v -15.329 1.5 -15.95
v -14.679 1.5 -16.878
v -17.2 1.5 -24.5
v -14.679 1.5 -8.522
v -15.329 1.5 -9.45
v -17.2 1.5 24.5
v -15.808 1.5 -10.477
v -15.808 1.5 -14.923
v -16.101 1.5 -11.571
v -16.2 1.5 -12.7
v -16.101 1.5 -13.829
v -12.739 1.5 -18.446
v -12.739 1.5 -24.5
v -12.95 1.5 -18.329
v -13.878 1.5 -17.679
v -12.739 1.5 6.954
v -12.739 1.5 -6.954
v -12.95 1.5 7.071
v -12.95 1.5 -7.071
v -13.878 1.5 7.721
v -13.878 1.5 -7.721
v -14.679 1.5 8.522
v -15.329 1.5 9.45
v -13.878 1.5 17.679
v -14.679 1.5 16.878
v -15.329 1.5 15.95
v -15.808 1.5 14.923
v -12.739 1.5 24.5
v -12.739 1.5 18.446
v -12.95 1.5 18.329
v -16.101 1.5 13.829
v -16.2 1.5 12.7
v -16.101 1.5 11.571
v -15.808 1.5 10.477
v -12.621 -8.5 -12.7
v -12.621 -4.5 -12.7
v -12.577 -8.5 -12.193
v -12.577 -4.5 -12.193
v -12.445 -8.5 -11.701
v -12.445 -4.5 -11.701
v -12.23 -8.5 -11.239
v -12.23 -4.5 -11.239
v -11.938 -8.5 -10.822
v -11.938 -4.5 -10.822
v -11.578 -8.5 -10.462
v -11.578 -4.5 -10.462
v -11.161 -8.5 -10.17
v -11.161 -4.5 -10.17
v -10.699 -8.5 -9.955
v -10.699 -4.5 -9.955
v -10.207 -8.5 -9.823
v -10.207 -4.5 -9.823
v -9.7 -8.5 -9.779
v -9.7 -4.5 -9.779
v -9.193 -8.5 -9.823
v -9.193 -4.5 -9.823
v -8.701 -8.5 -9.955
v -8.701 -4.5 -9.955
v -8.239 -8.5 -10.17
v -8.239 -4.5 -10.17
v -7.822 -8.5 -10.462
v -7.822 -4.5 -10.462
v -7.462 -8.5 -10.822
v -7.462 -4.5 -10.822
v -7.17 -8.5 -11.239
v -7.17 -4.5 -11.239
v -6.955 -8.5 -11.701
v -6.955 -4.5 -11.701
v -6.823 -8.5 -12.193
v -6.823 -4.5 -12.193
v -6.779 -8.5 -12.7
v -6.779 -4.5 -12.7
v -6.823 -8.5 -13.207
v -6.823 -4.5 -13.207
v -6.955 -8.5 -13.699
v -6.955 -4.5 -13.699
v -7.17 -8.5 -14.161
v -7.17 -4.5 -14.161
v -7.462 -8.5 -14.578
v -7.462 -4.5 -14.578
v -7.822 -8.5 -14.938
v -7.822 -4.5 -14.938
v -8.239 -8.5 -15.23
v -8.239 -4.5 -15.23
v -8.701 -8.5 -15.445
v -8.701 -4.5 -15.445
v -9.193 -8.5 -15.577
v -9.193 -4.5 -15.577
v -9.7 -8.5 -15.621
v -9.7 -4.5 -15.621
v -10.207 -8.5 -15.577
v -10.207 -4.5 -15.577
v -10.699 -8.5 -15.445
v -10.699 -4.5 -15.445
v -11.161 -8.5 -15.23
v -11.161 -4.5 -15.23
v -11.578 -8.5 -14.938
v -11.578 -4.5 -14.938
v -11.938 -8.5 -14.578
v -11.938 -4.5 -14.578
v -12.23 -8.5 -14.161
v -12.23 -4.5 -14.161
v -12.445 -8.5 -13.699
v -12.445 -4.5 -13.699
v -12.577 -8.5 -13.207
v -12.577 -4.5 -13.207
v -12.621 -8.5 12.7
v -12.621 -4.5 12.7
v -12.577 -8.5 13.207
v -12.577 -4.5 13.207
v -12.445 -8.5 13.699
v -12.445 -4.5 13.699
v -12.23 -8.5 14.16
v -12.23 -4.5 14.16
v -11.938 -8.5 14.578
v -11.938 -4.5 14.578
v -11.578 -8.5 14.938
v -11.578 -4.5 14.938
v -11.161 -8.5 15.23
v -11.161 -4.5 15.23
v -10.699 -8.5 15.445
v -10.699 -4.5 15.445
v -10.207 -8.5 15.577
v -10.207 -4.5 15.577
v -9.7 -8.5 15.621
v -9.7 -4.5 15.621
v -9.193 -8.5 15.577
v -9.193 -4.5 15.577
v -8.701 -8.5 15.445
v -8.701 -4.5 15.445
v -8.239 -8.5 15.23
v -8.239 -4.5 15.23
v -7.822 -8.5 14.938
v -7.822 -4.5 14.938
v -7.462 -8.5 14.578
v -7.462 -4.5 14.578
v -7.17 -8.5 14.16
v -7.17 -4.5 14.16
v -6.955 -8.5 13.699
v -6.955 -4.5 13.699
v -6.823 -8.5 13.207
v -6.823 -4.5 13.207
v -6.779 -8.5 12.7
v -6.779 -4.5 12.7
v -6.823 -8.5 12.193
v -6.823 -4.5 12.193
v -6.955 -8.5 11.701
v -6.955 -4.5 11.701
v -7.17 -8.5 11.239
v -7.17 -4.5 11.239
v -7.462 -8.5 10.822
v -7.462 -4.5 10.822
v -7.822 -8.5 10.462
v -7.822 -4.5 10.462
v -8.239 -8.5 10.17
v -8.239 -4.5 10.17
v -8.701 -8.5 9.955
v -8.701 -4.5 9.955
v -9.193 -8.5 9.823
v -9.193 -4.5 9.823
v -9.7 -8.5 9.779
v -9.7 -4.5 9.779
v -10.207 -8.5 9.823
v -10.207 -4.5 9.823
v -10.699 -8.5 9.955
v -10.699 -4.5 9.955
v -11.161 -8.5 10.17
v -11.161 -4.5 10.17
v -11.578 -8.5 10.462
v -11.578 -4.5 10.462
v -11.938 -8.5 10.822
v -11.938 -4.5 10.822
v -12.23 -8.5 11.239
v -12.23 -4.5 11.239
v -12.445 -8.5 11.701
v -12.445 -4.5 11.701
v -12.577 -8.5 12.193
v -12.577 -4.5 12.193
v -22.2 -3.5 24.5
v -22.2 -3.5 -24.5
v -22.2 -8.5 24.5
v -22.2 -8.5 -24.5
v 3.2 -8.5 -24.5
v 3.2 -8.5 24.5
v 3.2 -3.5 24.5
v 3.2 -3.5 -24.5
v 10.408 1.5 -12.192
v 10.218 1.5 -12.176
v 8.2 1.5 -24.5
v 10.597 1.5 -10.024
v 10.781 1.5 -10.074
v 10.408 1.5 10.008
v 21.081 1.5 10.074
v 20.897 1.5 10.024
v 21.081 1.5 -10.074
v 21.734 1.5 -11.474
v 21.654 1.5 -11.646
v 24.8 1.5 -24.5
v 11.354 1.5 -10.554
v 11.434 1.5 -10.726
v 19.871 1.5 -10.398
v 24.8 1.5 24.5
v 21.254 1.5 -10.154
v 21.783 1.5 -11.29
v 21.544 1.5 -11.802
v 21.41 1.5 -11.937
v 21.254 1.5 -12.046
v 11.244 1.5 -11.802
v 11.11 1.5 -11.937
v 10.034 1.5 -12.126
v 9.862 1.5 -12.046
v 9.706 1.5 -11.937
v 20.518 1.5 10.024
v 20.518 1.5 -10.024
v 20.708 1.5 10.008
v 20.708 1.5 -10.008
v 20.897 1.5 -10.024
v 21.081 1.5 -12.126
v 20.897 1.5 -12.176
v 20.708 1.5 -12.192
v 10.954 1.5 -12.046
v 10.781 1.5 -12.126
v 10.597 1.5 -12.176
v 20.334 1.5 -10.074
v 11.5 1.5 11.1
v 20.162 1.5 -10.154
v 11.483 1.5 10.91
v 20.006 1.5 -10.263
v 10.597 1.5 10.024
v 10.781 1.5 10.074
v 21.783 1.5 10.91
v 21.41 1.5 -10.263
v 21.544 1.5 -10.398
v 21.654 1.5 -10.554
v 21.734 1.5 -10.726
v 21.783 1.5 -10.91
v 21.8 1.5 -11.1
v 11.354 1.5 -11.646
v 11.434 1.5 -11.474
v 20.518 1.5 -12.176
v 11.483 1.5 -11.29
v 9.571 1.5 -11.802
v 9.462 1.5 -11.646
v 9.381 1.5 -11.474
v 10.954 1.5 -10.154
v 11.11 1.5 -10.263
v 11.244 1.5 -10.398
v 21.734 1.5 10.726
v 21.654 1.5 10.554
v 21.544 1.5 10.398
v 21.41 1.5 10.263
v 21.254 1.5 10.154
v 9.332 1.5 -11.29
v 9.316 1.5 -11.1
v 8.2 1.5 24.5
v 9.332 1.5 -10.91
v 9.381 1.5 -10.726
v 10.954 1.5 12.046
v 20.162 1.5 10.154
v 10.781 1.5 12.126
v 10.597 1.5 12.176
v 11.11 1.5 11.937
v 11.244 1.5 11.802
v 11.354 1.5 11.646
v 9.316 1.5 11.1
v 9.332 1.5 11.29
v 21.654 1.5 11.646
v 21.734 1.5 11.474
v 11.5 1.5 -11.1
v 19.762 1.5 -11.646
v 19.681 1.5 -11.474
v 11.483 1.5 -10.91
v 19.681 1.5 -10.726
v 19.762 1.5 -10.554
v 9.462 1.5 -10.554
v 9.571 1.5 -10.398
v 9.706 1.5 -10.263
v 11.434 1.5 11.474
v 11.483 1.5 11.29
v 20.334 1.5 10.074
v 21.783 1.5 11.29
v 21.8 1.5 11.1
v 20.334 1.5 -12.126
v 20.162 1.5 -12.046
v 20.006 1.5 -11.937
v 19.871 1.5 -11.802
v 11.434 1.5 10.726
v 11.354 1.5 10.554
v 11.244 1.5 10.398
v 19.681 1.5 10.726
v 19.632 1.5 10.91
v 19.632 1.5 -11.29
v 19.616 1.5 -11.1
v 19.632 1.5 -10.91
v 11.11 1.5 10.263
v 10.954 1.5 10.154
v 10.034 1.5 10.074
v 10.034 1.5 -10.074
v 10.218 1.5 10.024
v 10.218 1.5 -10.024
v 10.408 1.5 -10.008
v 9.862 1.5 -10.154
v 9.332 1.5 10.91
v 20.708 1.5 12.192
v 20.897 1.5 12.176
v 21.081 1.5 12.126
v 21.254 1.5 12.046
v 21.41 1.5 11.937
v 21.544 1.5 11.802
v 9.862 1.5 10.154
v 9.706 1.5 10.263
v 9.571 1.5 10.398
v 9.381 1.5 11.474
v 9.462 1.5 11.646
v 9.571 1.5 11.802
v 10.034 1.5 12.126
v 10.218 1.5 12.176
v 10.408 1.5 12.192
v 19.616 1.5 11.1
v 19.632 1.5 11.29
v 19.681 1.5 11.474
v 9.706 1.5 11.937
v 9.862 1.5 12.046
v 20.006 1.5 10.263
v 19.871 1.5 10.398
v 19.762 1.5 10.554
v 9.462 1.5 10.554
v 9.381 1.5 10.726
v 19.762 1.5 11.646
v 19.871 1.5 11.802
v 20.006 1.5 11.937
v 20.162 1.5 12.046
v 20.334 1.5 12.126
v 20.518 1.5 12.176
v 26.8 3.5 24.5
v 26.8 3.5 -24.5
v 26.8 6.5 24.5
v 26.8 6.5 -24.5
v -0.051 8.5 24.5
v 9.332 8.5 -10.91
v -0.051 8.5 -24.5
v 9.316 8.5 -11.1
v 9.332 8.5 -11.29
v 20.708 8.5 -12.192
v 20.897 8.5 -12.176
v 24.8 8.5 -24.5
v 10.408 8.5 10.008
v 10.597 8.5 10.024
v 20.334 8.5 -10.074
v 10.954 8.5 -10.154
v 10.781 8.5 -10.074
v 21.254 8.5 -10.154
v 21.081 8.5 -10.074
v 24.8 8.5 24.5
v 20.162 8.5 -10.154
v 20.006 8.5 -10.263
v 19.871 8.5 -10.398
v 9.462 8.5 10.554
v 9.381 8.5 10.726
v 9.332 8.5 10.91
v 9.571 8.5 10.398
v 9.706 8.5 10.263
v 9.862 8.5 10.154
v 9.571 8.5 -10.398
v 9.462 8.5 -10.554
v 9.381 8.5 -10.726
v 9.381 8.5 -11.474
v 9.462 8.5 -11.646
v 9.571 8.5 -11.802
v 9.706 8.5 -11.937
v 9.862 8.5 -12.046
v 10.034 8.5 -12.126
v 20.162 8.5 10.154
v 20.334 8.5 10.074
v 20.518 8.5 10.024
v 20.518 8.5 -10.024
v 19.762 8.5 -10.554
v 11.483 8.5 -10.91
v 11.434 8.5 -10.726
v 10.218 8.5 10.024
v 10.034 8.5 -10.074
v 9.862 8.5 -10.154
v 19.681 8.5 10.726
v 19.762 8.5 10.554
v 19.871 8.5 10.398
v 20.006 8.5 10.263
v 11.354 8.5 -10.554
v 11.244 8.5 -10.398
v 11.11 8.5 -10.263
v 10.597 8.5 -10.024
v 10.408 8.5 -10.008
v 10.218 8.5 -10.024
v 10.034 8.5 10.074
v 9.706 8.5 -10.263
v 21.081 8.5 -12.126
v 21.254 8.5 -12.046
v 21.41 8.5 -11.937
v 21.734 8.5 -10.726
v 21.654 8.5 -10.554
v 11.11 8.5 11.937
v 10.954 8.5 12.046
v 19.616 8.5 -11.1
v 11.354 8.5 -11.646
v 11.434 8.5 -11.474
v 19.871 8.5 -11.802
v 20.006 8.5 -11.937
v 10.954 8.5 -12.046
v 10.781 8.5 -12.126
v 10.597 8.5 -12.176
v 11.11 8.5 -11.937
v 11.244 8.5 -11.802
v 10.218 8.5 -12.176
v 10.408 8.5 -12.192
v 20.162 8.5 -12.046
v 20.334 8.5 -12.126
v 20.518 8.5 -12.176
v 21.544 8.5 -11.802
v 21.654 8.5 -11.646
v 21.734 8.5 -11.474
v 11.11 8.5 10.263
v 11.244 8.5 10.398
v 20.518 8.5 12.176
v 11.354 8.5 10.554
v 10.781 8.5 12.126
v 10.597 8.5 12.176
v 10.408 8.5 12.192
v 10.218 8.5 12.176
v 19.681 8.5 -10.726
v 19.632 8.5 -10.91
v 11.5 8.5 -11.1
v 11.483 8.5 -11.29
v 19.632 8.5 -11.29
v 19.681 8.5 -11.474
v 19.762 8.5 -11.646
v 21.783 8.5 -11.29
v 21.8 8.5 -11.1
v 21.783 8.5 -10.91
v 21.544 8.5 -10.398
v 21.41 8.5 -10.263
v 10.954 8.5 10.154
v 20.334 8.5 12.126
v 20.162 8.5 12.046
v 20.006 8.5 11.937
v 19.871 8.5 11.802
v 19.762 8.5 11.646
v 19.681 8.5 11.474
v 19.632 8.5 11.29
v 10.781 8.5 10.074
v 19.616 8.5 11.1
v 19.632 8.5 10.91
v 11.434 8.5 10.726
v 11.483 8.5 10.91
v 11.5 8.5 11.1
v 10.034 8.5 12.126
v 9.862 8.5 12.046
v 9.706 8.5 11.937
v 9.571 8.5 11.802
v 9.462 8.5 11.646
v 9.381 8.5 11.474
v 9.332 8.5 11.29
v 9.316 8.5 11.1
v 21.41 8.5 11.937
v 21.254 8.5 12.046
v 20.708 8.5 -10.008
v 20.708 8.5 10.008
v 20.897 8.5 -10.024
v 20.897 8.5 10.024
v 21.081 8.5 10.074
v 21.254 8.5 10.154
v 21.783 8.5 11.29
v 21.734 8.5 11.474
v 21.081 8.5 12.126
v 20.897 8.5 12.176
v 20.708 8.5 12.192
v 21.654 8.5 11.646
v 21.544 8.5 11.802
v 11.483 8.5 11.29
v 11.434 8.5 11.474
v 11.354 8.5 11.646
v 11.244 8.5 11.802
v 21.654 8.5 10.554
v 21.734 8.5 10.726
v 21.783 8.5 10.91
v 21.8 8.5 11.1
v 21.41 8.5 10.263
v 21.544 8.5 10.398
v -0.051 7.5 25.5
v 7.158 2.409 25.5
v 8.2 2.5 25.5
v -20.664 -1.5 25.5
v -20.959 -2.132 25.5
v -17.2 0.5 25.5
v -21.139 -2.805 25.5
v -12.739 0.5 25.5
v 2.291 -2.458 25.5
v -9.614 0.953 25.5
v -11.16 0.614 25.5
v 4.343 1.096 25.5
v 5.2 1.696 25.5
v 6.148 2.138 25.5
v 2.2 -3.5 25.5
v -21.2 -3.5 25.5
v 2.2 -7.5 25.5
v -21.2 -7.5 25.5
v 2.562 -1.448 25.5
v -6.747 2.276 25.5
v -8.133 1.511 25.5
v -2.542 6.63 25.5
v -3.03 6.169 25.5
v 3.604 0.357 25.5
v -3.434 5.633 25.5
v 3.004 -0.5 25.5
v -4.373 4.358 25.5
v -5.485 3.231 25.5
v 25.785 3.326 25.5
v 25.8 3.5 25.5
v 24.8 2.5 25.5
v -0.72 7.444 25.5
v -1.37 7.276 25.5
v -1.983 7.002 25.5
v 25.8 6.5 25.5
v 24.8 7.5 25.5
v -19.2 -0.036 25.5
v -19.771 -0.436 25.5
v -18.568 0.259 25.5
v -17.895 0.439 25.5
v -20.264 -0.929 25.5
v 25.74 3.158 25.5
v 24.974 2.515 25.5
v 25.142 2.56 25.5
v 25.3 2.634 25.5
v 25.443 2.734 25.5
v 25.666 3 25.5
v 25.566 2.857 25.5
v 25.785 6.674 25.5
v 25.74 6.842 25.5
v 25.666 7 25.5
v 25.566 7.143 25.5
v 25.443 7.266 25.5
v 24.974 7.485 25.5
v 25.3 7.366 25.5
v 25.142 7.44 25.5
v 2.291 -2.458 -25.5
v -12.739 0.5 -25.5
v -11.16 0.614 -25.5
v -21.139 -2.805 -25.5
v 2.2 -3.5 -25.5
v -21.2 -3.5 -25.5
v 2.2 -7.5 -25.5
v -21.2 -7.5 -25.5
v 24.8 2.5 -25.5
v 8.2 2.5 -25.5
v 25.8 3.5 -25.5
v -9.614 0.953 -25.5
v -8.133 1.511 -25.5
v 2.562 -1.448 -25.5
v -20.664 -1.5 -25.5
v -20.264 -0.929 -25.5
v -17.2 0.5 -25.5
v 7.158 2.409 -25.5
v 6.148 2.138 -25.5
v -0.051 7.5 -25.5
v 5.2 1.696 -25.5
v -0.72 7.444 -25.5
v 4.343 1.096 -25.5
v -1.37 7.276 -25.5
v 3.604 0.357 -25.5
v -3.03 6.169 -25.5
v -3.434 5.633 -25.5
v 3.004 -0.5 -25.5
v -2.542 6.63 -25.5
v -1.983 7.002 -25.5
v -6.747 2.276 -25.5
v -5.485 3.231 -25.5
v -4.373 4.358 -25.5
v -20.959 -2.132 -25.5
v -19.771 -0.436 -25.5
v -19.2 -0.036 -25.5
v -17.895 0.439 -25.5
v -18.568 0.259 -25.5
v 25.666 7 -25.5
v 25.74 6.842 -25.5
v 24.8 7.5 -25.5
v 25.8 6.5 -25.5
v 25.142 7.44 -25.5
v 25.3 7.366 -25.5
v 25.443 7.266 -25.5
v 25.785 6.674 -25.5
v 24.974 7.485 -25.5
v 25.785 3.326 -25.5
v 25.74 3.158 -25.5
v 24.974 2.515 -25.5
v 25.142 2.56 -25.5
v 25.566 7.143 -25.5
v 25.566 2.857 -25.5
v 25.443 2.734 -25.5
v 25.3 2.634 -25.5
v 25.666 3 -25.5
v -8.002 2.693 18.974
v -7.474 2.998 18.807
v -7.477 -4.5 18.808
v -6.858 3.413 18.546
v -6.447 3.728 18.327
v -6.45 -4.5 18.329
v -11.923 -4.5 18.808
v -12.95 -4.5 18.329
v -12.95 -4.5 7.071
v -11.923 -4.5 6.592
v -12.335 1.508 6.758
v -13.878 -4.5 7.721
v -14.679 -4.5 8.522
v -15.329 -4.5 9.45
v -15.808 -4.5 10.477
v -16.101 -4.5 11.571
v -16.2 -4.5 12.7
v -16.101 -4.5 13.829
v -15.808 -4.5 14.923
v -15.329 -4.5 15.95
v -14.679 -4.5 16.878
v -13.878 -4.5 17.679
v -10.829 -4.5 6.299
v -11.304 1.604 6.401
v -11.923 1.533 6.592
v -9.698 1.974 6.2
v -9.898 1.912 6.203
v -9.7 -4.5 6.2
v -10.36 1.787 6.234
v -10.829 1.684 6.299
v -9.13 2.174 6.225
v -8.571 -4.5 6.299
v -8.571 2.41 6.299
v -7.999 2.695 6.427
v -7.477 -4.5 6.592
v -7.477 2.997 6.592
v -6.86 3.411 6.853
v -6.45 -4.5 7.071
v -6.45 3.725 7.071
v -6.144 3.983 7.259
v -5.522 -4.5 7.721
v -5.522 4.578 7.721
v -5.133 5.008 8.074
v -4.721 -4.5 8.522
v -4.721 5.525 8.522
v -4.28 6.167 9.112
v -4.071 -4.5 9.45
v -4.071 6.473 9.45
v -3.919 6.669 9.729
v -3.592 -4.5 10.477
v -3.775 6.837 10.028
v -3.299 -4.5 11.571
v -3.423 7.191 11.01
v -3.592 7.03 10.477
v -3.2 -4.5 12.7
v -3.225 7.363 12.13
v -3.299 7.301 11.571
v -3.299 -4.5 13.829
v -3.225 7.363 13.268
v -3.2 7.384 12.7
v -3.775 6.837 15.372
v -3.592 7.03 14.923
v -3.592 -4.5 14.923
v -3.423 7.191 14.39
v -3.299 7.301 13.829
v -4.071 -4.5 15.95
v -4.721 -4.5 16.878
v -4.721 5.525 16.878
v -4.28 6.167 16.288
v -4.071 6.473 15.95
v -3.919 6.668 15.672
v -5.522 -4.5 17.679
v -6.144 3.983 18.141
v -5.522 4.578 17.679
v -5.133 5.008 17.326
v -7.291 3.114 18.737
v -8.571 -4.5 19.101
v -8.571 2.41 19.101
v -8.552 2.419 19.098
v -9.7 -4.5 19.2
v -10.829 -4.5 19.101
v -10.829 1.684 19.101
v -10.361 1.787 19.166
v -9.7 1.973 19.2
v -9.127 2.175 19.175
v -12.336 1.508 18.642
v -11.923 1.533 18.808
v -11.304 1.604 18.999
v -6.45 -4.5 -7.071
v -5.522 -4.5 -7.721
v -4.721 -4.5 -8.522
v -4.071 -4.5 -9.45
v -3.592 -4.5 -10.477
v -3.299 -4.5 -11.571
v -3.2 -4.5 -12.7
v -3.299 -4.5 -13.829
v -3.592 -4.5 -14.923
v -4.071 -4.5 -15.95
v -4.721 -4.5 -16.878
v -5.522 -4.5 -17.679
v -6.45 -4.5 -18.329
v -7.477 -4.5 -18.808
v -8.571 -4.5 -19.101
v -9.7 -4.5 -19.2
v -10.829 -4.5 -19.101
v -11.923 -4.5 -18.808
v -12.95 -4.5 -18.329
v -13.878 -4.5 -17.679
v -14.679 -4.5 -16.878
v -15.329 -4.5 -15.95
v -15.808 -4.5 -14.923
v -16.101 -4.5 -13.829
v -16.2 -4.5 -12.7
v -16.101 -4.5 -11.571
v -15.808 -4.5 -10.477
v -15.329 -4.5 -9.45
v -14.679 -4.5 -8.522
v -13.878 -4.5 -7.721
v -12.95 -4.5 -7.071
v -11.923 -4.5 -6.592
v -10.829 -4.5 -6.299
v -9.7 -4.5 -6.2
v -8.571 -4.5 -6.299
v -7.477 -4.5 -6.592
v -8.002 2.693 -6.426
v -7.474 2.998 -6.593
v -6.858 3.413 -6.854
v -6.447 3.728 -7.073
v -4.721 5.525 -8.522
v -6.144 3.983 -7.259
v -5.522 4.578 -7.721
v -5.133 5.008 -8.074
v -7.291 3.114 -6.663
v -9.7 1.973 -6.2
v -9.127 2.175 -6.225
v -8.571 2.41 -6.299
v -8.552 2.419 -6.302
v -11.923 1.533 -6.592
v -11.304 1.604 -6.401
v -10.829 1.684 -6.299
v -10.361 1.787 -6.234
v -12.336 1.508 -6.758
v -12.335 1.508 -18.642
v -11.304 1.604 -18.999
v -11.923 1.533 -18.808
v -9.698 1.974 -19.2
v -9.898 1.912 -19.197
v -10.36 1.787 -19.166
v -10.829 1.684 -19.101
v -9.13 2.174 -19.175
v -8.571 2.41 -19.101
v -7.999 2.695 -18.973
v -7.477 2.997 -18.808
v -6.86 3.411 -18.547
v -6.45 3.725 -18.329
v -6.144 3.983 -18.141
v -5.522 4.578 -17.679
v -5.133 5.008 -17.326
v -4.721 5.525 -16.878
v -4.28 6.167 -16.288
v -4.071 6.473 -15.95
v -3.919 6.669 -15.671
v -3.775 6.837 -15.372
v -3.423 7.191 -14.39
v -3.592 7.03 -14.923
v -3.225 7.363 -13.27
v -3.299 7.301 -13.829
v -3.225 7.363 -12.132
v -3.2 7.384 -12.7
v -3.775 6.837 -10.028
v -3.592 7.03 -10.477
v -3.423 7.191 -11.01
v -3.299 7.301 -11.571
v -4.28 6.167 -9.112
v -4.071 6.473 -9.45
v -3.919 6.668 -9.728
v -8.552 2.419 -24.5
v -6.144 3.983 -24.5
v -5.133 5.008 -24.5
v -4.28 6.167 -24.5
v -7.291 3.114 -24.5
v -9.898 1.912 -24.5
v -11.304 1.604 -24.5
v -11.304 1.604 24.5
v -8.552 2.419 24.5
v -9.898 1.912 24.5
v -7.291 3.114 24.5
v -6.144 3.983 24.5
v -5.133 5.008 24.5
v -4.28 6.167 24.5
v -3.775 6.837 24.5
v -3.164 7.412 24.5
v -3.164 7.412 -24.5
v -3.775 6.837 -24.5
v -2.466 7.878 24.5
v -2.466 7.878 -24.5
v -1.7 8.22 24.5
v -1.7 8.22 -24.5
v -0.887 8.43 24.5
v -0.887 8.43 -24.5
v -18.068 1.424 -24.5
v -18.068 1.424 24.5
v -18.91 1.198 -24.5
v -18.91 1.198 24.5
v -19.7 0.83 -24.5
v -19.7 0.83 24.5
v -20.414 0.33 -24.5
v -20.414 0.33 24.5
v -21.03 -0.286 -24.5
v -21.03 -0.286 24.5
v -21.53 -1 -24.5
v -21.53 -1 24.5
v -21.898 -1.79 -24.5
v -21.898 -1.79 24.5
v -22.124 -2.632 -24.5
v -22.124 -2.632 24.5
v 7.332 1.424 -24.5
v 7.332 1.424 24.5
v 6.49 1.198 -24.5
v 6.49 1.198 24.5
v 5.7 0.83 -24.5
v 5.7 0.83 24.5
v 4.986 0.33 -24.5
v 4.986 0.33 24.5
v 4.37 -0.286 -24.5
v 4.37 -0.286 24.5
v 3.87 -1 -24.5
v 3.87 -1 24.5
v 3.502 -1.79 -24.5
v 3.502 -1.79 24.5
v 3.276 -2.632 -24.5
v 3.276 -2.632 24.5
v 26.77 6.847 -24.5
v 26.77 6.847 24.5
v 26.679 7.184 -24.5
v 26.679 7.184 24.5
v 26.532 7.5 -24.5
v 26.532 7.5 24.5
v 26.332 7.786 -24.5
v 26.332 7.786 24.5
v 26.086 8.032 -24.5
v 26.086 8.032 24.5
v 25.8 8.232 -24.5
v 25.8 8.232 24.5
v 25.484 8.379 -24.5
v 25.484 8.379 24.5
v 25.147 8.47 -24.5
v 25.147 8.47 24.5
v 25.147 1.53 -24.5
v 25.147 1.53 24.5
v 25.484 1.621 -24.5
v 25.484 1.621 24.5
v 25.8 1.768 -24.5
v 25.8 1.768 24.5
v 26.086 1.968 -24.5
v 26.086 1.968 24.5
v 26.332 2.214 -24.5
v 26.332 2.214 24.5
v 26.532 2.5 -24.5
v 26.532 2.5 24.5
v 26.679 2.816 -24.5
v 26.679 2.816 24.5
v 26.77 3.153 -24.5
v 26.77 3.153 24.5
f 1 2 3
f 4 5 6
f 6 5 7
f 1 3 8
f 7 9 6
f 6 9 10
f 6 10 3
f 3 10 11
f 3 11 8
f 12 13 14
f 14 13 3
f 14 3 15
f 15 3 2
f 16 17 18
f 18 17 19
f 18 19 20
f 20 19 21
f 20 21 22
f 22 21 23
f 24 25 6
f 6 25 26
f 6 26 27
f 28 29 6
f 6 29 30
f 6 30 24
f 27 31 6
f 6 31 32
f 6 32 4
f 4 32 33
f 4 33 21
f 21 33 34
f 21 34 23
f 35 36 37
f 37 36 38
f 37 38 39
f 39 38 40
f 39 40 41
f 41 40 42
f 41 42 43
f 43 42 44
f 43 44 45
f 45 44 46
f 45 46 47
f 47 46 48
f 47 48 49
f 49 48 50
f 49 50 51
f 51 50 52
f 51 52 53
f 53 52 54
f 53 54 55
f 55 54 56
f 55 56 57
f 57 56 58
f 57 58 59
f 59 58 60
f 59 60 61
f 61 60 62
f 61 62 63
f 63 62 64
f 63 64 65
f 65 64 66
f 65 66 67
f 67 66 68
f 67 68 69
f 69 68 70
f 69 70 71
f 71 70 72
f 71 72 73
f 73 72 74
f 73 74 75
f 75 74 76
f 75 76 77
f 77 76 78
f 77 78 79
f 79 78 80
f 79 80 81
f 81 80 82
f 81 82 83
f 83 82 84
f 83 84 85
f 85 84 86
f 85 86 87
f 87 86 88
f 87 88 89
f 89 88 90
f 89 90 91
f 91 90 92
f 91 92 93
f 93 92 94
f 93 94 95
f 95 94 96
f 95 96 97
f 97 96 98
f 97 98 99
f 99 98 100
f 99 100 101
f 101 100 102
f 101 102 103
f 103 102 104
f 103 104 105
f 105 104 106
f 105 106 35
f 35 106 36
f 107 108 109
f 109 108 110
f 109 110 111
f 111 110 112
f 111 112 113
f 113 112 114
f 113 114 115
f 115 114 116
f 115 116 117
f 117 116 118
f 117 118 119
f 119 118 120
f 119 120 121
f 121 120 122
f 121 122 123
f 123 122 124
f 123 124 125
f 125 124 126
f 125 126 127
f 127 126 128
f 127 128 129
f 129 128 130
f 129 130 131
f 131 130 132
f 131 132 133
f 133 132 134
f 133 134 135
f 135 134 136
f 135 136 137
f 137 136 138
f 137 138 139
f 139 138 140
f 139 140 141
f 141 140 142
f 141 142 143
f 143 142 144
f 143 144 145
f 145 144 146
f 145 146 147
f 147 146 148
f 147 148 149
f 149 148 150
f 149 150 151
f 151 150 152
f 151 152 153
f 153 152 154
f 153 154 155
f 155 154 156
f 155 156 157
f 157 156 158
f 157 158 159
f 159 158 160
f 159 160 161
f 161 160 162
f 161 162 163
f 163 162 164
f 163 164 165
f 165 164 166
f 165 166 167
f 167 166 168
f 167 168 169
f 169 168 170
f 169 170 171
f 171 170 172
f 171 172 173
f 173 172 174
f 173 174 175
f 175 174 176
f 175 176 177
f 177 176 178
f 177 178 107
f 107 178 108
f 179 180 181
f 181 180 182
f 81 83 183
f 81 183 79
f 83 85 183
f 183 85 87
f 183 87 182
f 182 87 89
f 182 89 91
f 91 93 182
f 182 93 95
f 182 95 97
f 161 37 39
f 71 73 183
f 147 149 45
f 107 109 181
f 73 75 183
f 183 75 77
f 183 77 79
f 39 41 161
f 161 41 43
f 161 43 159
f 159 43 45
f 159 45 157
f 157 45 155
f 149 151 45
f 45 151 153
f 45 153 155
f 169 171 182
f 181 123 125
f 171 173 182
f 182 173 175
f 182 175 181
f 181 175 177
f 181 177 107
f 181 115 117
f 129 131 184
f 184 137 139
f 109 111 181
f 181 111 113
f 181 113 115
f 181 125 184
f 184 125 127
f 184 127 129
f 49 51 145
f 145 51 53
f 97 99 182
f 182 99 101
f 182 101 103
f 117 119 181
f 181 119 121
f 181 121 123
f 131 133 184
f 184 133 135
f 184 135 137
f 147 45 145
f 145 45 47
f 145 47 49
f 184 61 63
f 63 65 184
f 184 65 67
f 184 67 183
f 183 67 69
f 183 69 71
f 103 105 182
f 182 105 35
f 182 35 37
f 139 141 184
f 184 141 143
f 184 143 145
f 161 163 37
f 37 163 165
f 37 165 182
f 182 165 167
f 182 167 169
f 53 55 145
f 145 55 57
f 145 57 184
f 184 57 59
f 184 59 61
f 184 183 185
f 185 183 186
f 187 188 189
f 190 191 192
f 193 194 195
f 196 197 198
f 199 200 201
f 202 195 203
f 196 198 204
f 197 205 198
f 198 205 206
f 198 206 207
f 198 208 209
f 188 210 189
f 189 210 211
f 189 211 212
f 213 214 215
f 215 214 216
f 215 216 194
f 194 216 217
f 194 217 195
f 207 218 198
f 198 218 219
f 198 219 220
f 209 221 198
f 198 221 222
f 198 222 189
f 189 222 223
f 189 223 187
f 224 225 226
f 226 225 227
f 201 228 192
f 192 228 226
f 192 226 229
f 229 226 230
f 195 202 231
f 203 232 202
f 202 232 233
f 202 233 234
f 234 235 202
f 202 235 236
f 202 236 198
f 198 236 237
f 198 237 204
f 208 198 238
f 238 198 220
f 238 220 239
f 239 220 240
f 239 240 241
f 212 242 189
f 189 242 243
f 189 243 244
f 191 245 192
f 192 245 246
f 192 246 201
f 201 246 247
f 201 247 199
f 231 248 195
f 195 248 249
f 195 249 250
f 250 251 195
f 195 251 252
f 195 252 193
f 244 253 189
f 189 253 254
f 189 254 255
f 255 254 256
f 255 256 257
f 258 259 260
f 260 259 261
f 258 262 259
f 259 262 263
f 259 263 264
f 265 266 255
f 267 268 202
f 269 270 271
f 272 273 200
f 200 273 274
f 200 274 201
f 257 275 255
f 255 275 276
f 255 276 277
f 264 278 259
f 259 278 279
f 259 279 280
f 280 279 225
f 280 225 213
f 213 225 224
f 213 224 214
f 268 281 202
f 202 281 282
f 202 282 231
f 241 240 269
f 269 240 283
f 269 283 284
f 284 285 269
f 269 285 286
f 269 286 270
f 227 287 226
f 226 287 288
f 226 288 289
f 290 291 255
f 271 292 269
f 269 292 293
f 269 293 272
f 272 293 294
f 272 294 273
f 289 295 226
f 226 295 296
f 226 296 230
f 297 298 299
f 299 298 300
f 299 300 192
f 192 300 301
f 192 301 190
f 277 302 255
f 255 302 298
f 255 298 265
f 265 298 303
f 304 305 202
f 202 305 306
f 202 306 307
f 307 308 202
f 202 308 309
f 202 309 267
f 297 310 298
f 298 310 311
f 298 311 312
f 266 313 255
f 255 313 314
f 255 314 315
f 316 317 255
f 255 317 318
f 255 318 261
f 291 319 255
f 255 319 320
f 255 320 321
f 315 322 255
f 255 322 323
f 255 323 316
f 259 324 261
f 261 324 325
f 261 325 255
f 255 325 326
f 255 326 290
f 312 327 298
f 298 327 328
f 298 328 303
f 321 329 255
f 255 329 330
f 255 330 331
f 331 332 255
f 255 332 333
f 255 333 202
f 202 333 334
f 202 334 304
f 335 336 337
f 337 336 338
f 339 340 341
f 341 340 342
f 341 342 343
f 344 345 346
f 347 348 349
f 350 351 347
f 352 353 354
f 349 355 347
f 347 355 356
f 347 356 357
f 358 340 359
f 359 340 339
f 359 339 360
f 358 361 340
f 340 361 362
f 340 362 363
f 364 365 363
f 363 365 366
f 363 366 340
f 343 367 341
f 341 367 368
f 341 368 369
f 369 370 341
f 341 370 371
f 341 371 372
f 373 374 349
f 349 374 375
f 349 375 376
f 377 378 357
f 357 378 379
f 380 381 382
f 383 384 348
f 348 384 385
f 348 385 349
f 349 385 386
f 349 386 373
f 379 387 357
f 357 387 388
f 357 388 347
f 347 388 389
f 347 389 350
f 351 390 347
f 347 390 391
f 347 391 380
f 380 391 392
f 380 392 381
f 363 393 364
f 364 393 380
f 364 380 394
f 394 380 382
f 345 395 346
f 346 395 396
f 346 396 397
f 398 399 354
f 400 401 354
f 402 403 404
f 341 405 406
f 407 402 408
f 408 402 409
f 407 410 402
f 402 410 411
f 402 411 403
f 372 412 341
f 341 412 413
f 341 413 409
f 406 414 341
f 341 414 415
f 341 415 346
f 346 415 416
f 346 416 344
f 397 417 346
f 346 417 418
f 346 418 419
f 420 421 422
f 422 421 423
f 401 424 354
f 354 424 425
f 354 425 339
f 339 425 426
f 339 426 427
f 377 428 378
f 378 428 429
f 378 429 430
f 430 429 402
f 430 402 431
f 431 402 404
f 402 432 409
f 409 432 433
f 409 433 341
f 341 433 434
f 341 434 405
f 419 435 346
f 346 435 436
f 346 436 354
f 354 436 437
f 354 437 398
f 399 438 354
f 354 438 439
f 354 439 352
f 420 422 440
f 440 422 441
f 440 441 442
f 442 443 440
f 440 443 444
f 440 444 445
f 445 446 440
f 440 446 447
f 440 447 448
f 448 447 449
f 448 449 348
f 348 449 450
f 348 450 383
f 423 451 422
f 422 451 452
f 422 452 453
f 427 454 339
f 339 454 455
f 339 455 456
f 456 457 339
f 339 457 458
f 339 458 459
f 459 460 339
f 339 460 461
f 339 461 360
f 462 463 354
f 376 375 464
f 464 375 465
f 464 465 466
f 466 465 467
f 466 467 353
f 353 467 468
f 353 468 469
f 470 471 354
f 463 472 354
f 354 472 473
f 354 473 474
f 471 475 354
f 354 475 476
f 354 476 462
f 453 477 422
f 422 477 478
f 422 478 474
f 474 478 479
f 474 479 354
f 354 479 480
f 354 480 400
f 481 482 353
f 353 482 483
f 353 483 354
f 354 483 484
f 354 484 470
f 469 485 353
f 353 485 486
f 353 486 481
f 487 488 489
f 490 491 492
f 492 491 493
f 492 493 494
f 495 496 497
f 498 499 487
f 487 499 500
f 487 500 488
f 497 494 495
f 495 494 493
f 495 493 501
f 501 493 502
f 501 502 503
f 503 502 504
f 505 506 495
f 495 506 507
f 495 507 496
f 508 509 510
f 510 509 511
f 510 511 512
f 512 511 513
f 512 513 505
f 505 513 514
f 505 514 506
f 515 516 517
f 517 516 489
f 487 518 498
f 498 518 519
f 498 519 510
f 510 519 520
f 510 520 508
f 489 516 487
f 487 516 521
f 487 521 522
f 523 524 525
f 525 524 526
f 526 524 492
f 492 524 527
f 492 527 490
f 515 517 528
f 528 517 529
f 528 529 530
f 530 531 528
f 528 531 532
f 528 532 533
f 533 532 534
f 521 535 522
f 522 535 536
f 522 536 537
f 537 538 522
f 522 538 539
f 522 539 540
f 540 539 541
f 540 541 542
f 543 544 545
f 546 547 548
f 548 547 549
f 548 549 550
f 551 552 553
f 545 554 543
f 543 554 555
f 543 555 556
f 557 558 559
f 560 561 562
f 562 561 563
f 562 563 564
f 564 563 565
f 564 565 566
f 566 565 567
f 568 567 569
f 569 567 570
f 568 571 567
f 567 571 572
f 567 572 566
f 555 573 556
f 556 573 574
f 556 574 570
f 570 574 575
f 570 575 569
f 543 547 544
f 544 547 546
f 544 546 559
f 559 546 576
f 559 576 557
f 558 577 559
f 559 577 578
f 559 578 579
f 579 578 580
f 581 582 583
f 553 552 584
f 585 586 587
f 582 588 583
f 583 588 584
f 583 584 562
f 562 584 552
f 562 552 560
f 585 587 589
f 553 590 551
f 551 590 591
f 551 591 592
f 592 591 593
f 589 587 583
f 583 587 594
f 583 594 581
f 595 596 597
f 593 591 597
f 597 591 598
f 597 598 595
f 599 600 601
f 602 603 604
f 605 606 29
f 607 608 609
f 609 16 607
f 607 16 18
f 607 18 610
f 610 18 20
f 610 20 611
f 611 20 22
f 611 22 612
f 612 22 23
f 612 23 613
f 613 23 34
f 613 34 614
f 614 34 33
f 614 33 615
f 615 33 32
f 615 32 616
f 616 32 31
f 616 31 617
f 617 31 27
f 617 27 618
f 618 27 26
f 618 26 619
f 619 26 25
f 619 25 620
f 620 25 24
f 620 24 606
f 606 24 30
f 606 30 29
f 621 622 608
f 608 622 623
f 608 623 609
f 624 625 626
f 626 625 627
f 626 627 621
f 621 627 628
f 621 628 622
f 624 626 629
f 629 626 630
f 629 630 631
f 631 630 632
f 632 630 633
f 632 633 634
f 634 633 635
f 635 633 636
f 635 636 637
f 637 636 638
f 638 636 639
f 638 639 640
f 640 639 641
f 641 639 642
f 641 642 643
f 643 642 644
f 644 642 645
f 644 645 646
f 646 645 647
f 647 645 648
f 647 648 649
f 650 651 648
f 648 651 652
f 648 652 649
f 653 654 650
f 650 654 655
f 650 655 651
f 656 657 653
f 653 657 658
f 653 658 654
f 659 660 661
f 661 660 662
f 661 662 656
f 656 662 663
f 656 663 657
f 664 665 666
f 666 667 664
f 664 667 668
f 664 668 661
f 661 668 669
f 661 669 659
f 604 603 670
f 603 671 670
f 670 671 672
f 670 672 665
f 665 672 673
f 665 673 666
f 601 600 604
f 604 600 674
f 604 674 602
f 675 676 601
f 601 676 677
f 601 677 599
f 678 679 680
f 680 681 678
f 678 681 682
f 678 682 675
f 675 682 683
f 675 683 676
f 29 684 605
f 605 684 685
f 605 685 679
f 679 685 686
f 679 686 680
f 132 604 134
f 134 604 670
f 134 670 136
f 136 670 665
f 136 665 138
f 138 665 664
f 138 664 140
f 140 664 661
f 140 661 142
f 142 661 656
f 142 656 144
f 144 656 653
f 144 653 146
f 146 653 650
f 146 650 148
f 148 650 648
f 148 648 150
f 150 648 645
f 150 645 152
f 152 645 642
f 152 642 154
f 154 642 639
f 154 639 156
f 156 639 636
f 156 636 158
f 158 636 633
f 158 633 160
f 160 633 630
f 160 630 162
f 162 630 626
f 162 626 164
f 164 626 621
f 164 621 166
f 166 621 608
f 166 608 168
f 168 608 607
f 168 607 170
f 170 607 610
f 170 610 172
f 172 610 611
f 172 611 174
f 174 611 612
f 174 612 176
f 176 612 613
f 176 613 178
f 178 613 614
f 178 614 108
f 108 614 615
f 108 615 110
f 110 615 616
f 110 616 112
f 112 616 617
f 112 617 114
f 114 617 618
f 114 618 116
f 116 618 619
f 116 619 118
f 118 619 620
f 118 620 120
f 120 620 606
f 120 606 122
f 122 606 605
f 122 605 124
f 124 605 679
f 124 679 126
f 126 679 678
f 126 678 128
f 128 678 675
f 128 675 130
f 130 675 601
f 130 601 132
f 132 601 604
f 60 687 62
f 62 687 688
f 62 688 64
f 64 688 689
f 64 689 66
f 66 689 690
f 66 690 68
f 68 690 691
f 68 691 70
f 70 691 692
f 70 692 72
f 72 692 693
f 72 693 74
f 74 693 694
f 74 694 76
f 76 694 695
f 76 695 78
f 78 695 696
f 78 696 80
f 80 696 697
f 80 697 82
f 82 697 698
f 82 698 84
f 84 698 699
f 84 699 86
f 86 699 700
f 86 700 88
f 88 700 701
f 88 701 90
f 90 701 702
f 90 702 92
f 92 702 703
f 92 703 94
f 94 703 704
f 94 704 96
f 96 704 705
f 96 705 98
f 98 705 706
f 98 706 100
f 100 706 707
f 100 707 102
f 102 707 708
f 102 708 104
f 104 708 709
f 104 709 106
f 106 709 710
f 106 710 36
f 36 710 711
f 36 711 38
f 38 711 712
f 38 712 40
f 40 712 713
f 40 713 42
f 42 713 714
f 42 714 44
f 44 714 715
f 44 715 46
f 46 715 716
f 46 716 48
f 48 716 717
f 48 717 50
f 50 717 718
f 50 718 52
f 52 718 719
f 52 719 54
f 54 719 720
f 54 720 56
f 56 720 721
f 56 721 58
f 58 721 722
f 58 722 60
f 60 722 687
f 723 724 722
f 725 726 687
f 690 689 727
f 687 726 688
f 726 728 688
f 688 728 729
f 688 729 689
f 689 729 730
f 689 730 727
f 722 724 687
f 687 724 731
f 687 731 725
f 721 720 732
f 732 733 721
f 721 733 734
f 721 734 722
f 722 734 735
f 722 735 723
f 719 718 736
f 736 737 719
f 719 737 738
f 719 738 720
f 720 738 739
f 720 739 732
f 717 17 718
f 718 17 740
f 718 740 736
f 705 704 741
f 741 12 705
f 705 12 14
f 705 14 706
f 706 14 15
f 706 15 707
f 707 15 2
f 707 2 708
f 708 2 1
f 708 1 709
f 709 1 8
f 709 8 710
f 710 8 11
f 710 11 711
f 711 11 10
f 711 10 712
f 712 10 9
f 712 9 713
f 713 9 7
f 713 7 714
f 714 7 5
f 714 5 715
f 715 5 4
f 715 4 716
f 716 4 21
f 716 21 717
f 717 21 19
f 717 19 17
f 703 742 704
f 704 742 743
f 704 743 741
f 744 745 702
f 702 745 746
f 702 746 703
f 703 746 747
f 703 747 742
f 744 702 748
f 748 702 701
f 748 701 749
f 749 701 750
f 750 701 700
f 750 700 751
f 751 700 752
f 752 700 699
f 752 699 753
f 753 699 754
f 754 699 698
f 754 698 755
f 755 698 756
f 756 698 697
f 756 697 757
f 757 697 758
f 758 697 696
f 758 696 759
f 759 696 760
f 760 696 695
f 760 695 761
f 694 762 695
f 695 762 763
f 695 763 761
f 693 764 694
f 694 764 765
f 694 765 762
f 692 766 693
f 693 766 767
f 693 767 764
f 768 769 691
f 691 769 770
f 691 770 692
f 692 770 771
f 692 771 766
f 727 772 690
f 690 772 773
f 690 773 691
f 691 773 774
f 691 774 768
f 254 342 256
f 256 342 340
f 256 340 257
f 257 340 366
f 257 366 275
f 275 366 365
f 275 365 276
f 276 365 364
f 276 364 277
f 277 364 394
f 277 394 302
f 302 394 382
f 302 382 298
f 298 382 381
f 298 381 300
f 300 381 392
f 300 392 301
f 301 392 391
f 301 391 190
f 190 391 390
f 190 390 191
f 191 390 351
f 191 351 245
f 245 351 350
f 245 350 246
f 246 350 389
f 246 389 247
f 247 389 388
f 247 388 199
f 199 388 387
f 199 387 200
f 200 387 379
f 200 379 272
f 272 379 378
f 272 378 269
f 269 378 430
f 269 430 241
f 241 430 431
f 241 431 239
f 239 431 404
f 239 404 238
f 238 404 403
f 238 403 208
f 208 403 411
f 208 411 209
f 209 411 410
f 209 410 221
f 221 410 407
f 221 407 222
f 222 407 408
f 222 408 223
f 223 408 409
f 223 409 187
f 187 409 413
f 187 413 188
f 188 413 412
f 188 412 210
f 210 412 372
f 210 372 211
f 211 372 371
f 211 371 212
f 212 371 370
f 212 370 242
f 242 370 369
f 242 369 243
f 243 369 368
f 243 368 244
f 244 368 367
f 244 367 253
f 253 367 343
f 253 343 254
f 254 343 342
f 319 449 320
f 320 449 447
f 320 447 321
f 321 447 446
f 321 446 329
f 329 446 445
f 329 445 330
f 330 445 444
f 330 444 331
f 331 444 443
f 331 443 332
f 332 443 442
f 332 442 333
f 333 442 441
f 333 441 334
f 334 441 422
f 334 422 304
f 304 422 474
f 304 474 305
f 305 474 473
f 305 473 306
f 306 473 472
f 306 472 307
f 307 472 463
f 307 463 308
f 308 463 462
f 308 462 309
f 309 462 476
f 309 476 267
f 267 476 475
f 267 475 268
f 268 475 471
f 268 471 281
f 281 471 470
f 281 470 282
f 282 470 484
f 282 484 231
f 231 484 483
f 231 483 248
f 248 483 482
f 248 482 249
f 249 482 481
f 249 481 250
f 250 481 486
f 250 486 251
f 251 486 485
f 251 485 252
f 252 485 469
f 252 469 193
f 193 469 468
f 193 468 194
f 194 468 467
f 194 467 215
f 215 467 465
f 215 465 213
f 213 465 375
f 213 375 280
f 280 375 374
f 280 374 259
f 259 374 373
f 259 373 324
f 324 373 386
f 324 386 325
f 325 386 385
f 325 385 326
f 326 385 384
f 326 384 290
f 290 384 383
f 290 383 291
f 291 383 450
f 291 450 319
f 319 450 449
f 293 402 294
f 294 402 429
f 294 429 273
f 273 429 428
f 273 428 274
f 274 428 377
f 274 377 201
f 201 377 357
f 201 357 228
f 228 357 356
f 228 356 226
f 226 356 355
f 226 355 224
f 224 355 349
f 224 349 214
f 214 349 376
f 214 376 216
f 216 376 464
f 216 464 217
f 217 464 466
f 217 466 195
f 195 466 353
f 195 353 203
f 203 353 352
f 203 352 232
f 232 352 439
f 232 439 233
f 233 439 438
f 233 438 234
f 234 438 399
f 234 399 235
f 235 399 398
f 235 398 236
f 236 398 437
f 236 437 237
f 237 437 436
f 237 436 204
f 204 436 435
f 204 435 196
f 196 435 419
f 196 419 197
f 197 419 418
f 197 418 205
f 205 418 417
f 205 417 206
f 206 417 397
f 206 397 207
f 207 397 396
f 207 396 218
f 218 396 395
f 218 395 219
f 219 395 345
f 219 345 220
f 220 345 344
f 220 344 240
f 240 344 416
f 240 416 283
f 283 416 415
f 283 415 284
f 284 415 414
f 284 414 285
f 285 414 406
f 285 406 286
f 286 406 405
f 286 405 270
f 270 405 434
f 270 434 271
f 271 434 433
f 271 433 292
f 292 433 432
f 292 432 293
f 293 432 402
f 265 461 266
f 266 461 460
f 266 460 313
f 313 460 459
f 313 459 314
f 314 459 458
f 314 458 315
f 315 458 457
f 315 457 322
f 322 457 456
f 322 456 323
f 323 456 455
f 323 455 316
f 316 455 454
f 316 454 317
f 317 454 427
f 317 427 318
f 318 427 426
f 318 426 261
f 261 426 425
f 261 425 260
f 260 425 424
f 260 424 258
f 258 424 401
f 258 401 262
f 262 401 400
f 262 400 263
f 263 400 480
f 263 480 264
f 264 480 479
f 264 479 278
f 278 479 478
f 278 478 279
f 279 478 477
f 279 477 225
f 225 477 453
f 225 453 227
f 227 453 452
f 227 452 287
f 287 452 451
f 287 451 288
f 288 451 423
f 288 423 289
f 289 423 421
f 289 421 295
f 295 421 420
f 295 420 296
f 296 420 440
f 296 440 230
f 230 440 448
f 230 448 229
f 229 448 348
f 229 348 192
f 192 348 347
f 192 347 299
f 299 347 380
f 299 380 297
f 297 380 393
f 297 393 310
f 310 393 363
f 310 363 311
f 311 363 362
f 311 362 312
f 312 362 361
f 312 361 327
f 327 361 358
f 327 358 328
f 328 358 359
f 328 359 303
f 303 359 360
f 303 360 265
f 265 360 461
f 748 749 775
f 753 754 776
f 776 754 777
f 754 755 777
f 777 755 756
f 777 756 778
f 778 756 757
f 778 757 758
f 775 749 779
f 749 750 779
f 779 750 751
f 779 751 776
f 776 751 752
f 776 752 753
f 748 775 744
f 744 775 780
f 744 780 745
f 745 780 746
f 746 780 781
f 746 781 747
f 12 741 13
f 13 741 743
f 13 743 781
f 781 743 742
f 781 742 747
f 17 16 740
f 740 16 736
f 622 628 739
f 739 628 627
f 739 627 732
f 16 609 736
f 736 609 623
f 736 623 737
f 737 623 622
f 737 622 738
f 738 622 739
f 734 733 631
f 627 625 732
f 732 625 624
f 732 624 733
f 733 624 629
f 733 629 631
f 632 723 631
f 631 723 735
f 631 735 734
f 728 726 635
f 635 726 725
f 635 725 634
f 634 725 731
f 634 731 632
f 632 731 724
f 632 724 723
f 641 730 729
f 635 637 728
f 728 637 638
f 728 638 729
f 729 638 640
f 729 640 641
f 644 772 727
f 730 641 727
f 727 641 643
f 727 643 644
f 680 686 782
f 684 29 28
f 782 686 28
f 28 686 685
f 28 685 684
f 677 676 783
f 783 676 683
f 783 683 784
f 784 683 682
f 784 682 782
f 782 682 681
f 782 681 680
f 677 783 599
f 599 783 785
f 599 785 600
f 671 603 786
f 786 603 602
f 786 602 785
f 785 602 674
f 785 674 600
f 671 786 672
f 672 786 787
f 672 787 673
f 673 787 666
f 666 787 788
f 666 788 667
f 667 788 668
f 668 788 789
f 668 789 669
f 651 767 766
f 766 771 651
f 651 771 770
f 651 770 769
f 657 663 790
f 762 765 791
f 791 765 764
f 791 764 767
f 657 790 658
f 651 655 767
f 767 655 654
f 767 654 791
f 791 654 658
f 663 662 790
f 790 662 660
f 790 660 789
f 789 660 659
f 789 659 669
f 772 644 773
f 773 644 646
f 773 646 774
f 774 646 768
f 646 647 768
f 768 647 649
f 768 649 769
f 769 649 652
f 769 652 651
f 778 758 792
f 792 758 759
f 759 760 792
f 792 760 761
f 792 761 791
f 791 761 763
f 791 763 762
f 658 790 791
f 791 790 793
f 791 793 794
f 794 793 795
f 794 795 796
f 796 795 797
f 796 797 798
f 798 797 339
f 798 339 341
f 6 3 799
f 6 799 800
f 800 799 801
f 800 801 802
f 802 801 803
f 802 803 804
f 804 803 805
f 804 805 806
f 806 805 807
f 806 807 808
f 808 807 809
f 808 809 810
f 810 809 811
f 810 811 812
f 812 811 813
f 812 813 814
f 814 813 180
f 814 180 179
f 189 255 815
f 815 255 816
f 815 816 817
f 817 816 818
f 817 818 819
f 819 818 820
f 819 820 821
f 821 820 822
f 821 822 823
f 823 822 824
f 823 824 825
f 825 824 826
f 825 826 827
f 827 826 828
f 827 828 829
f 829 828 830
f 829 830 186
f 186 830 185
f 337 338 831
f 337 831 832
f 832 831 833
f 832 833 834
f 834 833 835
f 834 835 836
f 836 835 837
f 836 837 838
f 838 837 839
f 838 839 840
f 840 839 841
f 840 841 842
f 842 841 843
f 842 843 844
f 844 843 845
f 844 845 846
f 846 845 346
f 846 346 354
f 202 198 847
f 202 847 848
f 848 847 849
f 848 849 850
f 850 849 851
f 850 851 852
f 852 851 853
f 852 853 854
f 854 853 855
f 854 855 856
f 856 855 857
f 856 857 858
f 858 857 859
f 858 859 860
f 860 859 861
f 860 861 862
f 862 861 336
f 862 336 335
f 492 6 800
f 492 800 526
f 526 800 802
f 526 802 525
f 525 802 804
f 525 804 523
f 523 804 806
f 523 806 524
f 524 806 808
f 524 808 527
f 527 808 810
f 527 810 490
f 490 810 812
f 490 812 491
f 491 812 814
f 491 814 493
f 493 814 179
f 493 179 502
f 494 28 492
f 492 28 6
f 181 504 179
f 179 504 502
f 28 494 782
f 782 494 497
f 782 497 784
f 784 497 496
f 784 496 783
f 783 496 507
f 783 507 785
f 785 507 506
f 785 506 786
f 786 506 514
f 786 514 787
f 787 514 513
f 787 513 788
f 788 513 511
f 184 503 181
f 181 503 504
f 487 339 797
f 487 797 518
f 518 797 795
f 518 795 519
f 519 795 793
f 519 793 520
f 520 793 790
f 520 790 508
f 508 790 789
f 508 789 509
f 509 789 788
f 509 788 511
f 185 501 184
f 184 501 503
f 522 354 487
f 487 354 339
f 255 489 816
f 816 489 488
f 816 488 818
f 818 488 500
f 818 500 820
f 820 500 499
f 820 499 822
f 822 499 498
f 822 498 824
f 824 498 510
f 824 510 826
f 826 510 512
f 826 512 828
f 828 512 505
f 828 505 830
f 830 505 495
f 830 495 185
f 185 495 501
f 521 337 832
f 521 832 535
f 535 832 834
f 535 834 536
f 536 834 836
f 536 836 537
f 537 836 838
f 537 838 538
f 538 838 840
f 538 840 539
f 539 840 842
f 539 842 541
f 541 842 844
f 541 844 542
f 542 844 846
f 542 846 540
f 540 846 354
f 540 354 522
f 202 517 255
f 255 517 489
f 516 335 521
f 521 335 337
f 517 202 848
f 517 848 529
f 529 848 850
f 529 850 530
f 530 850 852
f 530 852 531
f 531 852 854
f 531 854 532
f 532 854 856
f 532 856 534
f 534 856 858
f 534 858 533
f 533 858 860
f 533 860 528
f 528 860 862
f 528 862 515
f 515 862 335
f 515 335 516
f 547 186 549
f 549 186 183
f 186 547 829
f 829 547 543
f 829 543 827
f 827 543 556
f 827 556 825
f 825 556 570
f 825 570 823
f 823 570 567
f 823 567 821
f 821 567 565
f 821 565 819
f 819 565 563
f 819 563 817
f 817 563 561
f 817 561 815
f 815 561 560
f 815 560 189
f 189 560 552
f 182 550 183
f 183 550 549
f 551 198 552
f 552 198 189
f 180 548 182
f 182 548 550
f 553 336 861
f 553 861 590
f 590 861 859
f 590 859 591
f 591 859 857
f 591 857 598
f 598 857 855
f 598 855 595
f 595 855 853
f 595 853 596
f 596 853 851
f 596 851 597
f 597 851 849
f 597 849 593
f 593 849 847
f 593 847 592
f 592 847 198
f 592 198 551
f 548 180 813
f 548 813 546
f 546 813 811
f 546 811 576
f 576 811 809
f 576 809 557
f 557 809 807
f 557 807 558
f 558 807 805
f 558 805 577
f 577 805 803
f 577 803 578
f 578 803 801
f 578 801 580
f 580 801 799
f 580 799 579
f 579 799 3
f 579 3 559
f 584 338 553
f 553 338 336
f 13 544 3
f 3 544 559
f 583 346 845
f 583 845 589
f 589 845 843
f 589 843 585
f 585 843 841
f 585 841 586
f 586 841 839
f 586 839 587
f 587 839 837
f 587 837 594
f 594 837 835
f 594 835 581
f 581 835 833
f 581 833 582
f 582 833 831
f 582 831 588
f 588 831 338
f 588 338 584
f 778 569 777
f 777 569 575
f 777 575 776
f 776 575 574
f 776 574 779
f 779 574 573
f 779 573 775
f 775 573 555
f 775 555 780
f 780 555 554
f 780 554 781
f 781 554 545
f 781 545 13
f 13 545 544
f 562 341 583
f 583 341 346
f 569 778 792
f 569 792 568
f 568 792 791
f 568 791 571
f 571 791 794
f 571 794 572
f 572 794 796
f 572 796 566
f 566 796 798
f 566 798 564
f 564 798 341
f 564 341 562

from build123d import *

# Parameters (mm, degrees)
BOSS_EXTRUDE1_DEPTH = 25.5
SKETCH3_R           = 2.921
CUT_EXTRUDE1_DEPTH  = 39.320882036
SKETCH3_4_R         = 6.5
SKETCH3_4_R_2       = 2.921
CUT_EXTRUDE2_DEPTH  = 6
SKETCH9_R           = 1.0922
CUT_EXTRUDE3_DEPTH  = 41.712283159
FILLET1_R           = 10
FILLET2_R           = 5
FILLET4_R           = 2
CHAMFER1_SIZE       = 1


with BuildPart() as part:
    # Sketch1 → Boss-Extrude1 (new, symmetric)
    with BuildSketch(Plane.XY):
        Polygon((-22.2, -8.5), (3.2, -8.5), (3.2, 1.5), (26.8, 1.5), (26.8, 8.5), (-3.2, 8.5), (-3.2, 1.5), (-22.2, 1.5), align=None)
    extrude(amount=BOSS_EXTRUDE1_DEPTH, both=True)

    # Sketch3 → Cut-Extrude1 (cut, through all)
    with BuildSketch(Plane(origin=(0, 1.5, 0), x_dir=(1, 0, 0), z_dir=(0, 1, 0))):
        with Locations(Location((-9.7, -12.7, 0), (0, 0, 180))):
            Circle(SKETCH3_R)
    cut_extrude1 = extrude(amount=-CUT_EXTRUDE1_DEPTH, mode=Mode.SUBTRACT)

    # Sketch3<4> → Cut-Extrude2 (cut)
    with BuildSketch(Plane(origin=(0, 1.5, 0), x_dir=(1, 0, 0), z_dir=(0, 1, 0))):
        with Locations(Location((-9.7, -12.7, 0), (0, 0, 180))):
            Circle(SKETCH3_4_R)
        with Locations(Location((-9.7, -12.7, 0), (0, 0, 180))):
            Circle(SKETCH3_4_R_2, mode=Mode.SUBTRACT)
    cut_extrude2 = extrude(amount=-CUT_EXTRUDE2_DEPTH, mode=Mode.SUBTRACT)

    # Mirror1: Cut-Extrude1, Cut-Extrude2 across plane
    add(cut_extrude1.mirror(Plane.XY), mode=Mode.SUBTRACT)
    add(cut_extrude2.mirror(Plane.XY), mode=Mode.SUBTRACT)

    # Sketch9 → Cut-Extrude3 (cut, through all)
    with BuildSketch(Plane(origin=(0, 8.5, 0), x_dir=(1, 0, 0), z_dir=(0, 1, 0))):
        with Locations(Location((10.4078, 11.1, 0), (0, 0, 180))):
            Circle(SKETCH9_R)
        with Locations(Location((20.7078, -11.1, 0), (0, 0, 180))):
            Circle(SKETCH9_R)
        with Locations(Location((20.7078, 11.1, 0), (0, 0, 180))):
            Circle(SKETCH9_R)
        with Locations(Location((10.4078, -11.1, 0), (0, 0, 180))):
            Circle(SKETCH9_R)
    extrude(amount=-CUT_EXTRUDE3_DEPTH, mode=Mode.SUBTRACT)

    # Fillet1
    # the kernel refuses this fillet: 10 mm, written as the material it adds along each edge
    with BuildSketch(Plane(origin=(-3.2, 1.5, 25.5), x_dir=(0, 1, 0), z_dir=(0, 0, -1))) as fillet1_piece_1_section:
        with BuildLine():
            CenterArc((10, -9.539392014), FILLET1_R, 107.457603124, 72.542396876)
            Line((0, -9.539392014), (0, 0))
            Line((0, 0), (7, 0))
        make_face()
    fillet1_piece_1 = extrude(amount=12.8, mode=Mode.PRIVATE)
    fillet1_piece_1 = fillet1_piece_1 - Plane(origin=(-9.7, 1.5, 12.7), x_dir=(-1, 0, 0), z_dir=(0, 1, 0)) * Cylinder(6.5, 64, mode=Mode.PRIVATE)
    add(fillet1_piece_1)
    with BuildSketch(Plane(origin=(-3.2, 1.5, -12.700000035), x_dir=(0, 1, 0), z_dir=(0, 0, -1))) as fillet1_piece_2_section:
        with BuildLine():
            CenterArc((10, -9.539392014), FILLET1_R, 107.457603124, 72.542396876)
            Line((0, -9.539392014), (0, 0))
            Line((0, 0), (7, 0))
        make_face()
    fillet1_piece_2 = extrude(amount=12.799999965, mode=Mode.PRIVATE)
    fillet1_piece_2 = fillet1_piece_2 - Plane(origin=(-9.7, 1.5, -12.7), x_dir=(-1, 0, 0), z_dir=(0, 1, 0)) * Cylinder(6.5, 64, mode=Mode.PRIVATE)
    add(fillet1_piece_2)
    with BuildSketch(Plane(origin=(-3.2, 1.5, 12.7), x_dir=(0, 1, 0), z_dir=(0, 0, -1))) as fillet1_piece_3_section:
        with BuildLine():
            CenterArc((10, -9.539392014), FILLET1_R, 107.457603124, 72.542396876)
            Line((0, -9.539392014), (0, 0))
            Line((0, 0), (7, 0))
        make_face()
    fillet1_piece_3 = extrude(amount=25.400000035, mode=Mode.PRIVATE)
    fillet1_piece_3 = fillet1_piece_3 - Plane(origin=(-9.7, 1.5, -12.7), x_dir=(-1, 0, 0), z_dir=(0, 1, 0)) * Cylinder(6.5, 89, mode=Mode.PRIVATE)
    fillet1_piece_3 = fillet1_piece_3 - Plane(origin=(-9.7, 1.5, 12.7), x_dir=(-1, 0, 0), z_dir=(0, 1, 0)) * Cylinder(6.5, 89, mode=Mode.PRIVATE)
    add(fillet1_piece_3)

    # Fillet2
    # the kernel refuses this fillet: 5 mm, written as the material it adds along each edge
    with BuildSketch(Plane(origin=(3.2, 1.5, -25.5), x_dir=(0, -1, 0), z_dir=(0, 0, 1))) as fillet2_piece_1:
        with BuildLine():
            CenterArc((FILLET2_R, FILLET2_R), FILLET2_R, 180, 90)
            Line((0, FILLET2_R), (0, 0))
            Line((0, 0), (FILLET2_R, 0))
        make_face()
    extrude(amount=51)
    # the kernel refuses this fillet: 5 mm, written as the material it takes off along each edge
    with BuildSketch(Plane(origin=(-3.2, 8.5, -33.372963816), x_dir=(1, 0, 0), z_dir=(0, 0, 1))) as fillet2_2_piece_1:
        with BuildLine():
            CenterArc((3.149185526, -5), FILLET2_R, 90, 57.769047364)
            ThreePointArc((-1.080340321, -2.333333333), (-0.464861443, -1.201534828), (0, 0))
            Line((0, 0), (3.149185526, 0))
        make_face()
    extrude(amount=20.67296378, mode=Mode.SUBTRACT)
    with BuildSketch(Plane(origin=(-22.2, 1.5, 38), x_dir=(1, 0, 0), z_dir=(0, 0, -1))) as fillet2_2_piece_2:
        with BuildLine():
            CenterArc((FILLET2_R, FILLET2_R), FILLET2_R, 180, 90)
            Line((0, FILLET2_R), (0, 0))
            Line((0, 0), (FILLET2_R, 0))
        make_face()
    extrude(amount=76, mode=Mode.SUBTRACT)
    with BuildSketch(Plane(origin=(-3.2, 8.5, -12.700000035), x_dir=(-0.42015348282673015, -0.9074530571156663, 0), z_dir=(0, 0, 1))) as fillet2_2_piece_3:
        with BuildLine():
            CenterArc((3.214124019, 4.958505447), FILLET2_R, 204.84427788, 57.769047364)
            Line((-1.323141267, 2.857738033), (0, 0))
            ThreePointArc((0, 0), (1.285649607, 0.082989105), (2.571299215, 0))
        make_face()
    extrude(amount=25.400000035, mode=Mode.SUBTRACT)
    with BuildSketch(Plane(origin=(-3.2, 8.5, 12.7), x_dir=(1, 0, 0), z_dir=(0, 0, 1))) as fillet2_2_piece_4:
        with BuildLine():
            CenterArc((3.149185526, -5), FILLET2_R, 90, 57.769047364)
            ThreePointArc((-1.080340321, -2.333333333), (-0.464861443, -1.201534828), (0, 0))
            Line((0, 0), (3.149185526, 0))
        make_face()
    extrude(amount=20.672963816, mode=Mode.SUBTRACT)

    # Fillet4
    fillet4_edges = [part.edges().sort_by_distance(p)[0] for p in [
        (26.8, 8.5, 0),
        (26.8, 1.5, 0),
    ]]
    fillet(fillet4_edges, radius=FILLET4_R)

    # Chamfer1
    chamfer1_edges = [part.edges().sort_by_distance(p)[0] for p in [
        (3.2, -6, -25.5),
        (12.374592763, 8.5, 25.5),
        (-9.5, -8.5, -25.5),
        (12.374592763, 8.5, -25.5),
        (26.8, 5, -25.5),
        (26.214213562, 2.085786438, -25.5),
        (26.214213562, 7.914213562, -25.5),
        (26.8, 5, 25.5),
        (26.214213562, 2.085786438, 25.5),
        (26.214213562, 7.914213562, 25.5),
        (3.2, -6, 25.5),
        (-14.969696007, 1.5, -25.5),
        (-14.969696007, 1.5, 25.5),
        (-7.908933099, 2.744049642, -25.5),
        (-7.908933099, 2.744049642, 25.5),
        (-22.2, -6, 25.5),
        (16.5, 1.5, 25.5),
        (-20.735533906, 0.035533906, 25.5),
        (-2.466043931, 7.877975179, 25.5),
        (-22.2, -6, -25.5),
        (-9.5, -8.5, 25.5),
        (16.5, 1.5, -25.5),
        (-20.735533906, 0.035533906, -25.5),
        (-2.466043931, 7.877975179, -25.5),
        (4.664466094, 0.035533906, -25.5),
        (4.664466094, 0.035533906, 25.5),
    ]]
    chamfer(chamfer1_edges, length=CHAMFER1_SIZE)


solid = part.part
